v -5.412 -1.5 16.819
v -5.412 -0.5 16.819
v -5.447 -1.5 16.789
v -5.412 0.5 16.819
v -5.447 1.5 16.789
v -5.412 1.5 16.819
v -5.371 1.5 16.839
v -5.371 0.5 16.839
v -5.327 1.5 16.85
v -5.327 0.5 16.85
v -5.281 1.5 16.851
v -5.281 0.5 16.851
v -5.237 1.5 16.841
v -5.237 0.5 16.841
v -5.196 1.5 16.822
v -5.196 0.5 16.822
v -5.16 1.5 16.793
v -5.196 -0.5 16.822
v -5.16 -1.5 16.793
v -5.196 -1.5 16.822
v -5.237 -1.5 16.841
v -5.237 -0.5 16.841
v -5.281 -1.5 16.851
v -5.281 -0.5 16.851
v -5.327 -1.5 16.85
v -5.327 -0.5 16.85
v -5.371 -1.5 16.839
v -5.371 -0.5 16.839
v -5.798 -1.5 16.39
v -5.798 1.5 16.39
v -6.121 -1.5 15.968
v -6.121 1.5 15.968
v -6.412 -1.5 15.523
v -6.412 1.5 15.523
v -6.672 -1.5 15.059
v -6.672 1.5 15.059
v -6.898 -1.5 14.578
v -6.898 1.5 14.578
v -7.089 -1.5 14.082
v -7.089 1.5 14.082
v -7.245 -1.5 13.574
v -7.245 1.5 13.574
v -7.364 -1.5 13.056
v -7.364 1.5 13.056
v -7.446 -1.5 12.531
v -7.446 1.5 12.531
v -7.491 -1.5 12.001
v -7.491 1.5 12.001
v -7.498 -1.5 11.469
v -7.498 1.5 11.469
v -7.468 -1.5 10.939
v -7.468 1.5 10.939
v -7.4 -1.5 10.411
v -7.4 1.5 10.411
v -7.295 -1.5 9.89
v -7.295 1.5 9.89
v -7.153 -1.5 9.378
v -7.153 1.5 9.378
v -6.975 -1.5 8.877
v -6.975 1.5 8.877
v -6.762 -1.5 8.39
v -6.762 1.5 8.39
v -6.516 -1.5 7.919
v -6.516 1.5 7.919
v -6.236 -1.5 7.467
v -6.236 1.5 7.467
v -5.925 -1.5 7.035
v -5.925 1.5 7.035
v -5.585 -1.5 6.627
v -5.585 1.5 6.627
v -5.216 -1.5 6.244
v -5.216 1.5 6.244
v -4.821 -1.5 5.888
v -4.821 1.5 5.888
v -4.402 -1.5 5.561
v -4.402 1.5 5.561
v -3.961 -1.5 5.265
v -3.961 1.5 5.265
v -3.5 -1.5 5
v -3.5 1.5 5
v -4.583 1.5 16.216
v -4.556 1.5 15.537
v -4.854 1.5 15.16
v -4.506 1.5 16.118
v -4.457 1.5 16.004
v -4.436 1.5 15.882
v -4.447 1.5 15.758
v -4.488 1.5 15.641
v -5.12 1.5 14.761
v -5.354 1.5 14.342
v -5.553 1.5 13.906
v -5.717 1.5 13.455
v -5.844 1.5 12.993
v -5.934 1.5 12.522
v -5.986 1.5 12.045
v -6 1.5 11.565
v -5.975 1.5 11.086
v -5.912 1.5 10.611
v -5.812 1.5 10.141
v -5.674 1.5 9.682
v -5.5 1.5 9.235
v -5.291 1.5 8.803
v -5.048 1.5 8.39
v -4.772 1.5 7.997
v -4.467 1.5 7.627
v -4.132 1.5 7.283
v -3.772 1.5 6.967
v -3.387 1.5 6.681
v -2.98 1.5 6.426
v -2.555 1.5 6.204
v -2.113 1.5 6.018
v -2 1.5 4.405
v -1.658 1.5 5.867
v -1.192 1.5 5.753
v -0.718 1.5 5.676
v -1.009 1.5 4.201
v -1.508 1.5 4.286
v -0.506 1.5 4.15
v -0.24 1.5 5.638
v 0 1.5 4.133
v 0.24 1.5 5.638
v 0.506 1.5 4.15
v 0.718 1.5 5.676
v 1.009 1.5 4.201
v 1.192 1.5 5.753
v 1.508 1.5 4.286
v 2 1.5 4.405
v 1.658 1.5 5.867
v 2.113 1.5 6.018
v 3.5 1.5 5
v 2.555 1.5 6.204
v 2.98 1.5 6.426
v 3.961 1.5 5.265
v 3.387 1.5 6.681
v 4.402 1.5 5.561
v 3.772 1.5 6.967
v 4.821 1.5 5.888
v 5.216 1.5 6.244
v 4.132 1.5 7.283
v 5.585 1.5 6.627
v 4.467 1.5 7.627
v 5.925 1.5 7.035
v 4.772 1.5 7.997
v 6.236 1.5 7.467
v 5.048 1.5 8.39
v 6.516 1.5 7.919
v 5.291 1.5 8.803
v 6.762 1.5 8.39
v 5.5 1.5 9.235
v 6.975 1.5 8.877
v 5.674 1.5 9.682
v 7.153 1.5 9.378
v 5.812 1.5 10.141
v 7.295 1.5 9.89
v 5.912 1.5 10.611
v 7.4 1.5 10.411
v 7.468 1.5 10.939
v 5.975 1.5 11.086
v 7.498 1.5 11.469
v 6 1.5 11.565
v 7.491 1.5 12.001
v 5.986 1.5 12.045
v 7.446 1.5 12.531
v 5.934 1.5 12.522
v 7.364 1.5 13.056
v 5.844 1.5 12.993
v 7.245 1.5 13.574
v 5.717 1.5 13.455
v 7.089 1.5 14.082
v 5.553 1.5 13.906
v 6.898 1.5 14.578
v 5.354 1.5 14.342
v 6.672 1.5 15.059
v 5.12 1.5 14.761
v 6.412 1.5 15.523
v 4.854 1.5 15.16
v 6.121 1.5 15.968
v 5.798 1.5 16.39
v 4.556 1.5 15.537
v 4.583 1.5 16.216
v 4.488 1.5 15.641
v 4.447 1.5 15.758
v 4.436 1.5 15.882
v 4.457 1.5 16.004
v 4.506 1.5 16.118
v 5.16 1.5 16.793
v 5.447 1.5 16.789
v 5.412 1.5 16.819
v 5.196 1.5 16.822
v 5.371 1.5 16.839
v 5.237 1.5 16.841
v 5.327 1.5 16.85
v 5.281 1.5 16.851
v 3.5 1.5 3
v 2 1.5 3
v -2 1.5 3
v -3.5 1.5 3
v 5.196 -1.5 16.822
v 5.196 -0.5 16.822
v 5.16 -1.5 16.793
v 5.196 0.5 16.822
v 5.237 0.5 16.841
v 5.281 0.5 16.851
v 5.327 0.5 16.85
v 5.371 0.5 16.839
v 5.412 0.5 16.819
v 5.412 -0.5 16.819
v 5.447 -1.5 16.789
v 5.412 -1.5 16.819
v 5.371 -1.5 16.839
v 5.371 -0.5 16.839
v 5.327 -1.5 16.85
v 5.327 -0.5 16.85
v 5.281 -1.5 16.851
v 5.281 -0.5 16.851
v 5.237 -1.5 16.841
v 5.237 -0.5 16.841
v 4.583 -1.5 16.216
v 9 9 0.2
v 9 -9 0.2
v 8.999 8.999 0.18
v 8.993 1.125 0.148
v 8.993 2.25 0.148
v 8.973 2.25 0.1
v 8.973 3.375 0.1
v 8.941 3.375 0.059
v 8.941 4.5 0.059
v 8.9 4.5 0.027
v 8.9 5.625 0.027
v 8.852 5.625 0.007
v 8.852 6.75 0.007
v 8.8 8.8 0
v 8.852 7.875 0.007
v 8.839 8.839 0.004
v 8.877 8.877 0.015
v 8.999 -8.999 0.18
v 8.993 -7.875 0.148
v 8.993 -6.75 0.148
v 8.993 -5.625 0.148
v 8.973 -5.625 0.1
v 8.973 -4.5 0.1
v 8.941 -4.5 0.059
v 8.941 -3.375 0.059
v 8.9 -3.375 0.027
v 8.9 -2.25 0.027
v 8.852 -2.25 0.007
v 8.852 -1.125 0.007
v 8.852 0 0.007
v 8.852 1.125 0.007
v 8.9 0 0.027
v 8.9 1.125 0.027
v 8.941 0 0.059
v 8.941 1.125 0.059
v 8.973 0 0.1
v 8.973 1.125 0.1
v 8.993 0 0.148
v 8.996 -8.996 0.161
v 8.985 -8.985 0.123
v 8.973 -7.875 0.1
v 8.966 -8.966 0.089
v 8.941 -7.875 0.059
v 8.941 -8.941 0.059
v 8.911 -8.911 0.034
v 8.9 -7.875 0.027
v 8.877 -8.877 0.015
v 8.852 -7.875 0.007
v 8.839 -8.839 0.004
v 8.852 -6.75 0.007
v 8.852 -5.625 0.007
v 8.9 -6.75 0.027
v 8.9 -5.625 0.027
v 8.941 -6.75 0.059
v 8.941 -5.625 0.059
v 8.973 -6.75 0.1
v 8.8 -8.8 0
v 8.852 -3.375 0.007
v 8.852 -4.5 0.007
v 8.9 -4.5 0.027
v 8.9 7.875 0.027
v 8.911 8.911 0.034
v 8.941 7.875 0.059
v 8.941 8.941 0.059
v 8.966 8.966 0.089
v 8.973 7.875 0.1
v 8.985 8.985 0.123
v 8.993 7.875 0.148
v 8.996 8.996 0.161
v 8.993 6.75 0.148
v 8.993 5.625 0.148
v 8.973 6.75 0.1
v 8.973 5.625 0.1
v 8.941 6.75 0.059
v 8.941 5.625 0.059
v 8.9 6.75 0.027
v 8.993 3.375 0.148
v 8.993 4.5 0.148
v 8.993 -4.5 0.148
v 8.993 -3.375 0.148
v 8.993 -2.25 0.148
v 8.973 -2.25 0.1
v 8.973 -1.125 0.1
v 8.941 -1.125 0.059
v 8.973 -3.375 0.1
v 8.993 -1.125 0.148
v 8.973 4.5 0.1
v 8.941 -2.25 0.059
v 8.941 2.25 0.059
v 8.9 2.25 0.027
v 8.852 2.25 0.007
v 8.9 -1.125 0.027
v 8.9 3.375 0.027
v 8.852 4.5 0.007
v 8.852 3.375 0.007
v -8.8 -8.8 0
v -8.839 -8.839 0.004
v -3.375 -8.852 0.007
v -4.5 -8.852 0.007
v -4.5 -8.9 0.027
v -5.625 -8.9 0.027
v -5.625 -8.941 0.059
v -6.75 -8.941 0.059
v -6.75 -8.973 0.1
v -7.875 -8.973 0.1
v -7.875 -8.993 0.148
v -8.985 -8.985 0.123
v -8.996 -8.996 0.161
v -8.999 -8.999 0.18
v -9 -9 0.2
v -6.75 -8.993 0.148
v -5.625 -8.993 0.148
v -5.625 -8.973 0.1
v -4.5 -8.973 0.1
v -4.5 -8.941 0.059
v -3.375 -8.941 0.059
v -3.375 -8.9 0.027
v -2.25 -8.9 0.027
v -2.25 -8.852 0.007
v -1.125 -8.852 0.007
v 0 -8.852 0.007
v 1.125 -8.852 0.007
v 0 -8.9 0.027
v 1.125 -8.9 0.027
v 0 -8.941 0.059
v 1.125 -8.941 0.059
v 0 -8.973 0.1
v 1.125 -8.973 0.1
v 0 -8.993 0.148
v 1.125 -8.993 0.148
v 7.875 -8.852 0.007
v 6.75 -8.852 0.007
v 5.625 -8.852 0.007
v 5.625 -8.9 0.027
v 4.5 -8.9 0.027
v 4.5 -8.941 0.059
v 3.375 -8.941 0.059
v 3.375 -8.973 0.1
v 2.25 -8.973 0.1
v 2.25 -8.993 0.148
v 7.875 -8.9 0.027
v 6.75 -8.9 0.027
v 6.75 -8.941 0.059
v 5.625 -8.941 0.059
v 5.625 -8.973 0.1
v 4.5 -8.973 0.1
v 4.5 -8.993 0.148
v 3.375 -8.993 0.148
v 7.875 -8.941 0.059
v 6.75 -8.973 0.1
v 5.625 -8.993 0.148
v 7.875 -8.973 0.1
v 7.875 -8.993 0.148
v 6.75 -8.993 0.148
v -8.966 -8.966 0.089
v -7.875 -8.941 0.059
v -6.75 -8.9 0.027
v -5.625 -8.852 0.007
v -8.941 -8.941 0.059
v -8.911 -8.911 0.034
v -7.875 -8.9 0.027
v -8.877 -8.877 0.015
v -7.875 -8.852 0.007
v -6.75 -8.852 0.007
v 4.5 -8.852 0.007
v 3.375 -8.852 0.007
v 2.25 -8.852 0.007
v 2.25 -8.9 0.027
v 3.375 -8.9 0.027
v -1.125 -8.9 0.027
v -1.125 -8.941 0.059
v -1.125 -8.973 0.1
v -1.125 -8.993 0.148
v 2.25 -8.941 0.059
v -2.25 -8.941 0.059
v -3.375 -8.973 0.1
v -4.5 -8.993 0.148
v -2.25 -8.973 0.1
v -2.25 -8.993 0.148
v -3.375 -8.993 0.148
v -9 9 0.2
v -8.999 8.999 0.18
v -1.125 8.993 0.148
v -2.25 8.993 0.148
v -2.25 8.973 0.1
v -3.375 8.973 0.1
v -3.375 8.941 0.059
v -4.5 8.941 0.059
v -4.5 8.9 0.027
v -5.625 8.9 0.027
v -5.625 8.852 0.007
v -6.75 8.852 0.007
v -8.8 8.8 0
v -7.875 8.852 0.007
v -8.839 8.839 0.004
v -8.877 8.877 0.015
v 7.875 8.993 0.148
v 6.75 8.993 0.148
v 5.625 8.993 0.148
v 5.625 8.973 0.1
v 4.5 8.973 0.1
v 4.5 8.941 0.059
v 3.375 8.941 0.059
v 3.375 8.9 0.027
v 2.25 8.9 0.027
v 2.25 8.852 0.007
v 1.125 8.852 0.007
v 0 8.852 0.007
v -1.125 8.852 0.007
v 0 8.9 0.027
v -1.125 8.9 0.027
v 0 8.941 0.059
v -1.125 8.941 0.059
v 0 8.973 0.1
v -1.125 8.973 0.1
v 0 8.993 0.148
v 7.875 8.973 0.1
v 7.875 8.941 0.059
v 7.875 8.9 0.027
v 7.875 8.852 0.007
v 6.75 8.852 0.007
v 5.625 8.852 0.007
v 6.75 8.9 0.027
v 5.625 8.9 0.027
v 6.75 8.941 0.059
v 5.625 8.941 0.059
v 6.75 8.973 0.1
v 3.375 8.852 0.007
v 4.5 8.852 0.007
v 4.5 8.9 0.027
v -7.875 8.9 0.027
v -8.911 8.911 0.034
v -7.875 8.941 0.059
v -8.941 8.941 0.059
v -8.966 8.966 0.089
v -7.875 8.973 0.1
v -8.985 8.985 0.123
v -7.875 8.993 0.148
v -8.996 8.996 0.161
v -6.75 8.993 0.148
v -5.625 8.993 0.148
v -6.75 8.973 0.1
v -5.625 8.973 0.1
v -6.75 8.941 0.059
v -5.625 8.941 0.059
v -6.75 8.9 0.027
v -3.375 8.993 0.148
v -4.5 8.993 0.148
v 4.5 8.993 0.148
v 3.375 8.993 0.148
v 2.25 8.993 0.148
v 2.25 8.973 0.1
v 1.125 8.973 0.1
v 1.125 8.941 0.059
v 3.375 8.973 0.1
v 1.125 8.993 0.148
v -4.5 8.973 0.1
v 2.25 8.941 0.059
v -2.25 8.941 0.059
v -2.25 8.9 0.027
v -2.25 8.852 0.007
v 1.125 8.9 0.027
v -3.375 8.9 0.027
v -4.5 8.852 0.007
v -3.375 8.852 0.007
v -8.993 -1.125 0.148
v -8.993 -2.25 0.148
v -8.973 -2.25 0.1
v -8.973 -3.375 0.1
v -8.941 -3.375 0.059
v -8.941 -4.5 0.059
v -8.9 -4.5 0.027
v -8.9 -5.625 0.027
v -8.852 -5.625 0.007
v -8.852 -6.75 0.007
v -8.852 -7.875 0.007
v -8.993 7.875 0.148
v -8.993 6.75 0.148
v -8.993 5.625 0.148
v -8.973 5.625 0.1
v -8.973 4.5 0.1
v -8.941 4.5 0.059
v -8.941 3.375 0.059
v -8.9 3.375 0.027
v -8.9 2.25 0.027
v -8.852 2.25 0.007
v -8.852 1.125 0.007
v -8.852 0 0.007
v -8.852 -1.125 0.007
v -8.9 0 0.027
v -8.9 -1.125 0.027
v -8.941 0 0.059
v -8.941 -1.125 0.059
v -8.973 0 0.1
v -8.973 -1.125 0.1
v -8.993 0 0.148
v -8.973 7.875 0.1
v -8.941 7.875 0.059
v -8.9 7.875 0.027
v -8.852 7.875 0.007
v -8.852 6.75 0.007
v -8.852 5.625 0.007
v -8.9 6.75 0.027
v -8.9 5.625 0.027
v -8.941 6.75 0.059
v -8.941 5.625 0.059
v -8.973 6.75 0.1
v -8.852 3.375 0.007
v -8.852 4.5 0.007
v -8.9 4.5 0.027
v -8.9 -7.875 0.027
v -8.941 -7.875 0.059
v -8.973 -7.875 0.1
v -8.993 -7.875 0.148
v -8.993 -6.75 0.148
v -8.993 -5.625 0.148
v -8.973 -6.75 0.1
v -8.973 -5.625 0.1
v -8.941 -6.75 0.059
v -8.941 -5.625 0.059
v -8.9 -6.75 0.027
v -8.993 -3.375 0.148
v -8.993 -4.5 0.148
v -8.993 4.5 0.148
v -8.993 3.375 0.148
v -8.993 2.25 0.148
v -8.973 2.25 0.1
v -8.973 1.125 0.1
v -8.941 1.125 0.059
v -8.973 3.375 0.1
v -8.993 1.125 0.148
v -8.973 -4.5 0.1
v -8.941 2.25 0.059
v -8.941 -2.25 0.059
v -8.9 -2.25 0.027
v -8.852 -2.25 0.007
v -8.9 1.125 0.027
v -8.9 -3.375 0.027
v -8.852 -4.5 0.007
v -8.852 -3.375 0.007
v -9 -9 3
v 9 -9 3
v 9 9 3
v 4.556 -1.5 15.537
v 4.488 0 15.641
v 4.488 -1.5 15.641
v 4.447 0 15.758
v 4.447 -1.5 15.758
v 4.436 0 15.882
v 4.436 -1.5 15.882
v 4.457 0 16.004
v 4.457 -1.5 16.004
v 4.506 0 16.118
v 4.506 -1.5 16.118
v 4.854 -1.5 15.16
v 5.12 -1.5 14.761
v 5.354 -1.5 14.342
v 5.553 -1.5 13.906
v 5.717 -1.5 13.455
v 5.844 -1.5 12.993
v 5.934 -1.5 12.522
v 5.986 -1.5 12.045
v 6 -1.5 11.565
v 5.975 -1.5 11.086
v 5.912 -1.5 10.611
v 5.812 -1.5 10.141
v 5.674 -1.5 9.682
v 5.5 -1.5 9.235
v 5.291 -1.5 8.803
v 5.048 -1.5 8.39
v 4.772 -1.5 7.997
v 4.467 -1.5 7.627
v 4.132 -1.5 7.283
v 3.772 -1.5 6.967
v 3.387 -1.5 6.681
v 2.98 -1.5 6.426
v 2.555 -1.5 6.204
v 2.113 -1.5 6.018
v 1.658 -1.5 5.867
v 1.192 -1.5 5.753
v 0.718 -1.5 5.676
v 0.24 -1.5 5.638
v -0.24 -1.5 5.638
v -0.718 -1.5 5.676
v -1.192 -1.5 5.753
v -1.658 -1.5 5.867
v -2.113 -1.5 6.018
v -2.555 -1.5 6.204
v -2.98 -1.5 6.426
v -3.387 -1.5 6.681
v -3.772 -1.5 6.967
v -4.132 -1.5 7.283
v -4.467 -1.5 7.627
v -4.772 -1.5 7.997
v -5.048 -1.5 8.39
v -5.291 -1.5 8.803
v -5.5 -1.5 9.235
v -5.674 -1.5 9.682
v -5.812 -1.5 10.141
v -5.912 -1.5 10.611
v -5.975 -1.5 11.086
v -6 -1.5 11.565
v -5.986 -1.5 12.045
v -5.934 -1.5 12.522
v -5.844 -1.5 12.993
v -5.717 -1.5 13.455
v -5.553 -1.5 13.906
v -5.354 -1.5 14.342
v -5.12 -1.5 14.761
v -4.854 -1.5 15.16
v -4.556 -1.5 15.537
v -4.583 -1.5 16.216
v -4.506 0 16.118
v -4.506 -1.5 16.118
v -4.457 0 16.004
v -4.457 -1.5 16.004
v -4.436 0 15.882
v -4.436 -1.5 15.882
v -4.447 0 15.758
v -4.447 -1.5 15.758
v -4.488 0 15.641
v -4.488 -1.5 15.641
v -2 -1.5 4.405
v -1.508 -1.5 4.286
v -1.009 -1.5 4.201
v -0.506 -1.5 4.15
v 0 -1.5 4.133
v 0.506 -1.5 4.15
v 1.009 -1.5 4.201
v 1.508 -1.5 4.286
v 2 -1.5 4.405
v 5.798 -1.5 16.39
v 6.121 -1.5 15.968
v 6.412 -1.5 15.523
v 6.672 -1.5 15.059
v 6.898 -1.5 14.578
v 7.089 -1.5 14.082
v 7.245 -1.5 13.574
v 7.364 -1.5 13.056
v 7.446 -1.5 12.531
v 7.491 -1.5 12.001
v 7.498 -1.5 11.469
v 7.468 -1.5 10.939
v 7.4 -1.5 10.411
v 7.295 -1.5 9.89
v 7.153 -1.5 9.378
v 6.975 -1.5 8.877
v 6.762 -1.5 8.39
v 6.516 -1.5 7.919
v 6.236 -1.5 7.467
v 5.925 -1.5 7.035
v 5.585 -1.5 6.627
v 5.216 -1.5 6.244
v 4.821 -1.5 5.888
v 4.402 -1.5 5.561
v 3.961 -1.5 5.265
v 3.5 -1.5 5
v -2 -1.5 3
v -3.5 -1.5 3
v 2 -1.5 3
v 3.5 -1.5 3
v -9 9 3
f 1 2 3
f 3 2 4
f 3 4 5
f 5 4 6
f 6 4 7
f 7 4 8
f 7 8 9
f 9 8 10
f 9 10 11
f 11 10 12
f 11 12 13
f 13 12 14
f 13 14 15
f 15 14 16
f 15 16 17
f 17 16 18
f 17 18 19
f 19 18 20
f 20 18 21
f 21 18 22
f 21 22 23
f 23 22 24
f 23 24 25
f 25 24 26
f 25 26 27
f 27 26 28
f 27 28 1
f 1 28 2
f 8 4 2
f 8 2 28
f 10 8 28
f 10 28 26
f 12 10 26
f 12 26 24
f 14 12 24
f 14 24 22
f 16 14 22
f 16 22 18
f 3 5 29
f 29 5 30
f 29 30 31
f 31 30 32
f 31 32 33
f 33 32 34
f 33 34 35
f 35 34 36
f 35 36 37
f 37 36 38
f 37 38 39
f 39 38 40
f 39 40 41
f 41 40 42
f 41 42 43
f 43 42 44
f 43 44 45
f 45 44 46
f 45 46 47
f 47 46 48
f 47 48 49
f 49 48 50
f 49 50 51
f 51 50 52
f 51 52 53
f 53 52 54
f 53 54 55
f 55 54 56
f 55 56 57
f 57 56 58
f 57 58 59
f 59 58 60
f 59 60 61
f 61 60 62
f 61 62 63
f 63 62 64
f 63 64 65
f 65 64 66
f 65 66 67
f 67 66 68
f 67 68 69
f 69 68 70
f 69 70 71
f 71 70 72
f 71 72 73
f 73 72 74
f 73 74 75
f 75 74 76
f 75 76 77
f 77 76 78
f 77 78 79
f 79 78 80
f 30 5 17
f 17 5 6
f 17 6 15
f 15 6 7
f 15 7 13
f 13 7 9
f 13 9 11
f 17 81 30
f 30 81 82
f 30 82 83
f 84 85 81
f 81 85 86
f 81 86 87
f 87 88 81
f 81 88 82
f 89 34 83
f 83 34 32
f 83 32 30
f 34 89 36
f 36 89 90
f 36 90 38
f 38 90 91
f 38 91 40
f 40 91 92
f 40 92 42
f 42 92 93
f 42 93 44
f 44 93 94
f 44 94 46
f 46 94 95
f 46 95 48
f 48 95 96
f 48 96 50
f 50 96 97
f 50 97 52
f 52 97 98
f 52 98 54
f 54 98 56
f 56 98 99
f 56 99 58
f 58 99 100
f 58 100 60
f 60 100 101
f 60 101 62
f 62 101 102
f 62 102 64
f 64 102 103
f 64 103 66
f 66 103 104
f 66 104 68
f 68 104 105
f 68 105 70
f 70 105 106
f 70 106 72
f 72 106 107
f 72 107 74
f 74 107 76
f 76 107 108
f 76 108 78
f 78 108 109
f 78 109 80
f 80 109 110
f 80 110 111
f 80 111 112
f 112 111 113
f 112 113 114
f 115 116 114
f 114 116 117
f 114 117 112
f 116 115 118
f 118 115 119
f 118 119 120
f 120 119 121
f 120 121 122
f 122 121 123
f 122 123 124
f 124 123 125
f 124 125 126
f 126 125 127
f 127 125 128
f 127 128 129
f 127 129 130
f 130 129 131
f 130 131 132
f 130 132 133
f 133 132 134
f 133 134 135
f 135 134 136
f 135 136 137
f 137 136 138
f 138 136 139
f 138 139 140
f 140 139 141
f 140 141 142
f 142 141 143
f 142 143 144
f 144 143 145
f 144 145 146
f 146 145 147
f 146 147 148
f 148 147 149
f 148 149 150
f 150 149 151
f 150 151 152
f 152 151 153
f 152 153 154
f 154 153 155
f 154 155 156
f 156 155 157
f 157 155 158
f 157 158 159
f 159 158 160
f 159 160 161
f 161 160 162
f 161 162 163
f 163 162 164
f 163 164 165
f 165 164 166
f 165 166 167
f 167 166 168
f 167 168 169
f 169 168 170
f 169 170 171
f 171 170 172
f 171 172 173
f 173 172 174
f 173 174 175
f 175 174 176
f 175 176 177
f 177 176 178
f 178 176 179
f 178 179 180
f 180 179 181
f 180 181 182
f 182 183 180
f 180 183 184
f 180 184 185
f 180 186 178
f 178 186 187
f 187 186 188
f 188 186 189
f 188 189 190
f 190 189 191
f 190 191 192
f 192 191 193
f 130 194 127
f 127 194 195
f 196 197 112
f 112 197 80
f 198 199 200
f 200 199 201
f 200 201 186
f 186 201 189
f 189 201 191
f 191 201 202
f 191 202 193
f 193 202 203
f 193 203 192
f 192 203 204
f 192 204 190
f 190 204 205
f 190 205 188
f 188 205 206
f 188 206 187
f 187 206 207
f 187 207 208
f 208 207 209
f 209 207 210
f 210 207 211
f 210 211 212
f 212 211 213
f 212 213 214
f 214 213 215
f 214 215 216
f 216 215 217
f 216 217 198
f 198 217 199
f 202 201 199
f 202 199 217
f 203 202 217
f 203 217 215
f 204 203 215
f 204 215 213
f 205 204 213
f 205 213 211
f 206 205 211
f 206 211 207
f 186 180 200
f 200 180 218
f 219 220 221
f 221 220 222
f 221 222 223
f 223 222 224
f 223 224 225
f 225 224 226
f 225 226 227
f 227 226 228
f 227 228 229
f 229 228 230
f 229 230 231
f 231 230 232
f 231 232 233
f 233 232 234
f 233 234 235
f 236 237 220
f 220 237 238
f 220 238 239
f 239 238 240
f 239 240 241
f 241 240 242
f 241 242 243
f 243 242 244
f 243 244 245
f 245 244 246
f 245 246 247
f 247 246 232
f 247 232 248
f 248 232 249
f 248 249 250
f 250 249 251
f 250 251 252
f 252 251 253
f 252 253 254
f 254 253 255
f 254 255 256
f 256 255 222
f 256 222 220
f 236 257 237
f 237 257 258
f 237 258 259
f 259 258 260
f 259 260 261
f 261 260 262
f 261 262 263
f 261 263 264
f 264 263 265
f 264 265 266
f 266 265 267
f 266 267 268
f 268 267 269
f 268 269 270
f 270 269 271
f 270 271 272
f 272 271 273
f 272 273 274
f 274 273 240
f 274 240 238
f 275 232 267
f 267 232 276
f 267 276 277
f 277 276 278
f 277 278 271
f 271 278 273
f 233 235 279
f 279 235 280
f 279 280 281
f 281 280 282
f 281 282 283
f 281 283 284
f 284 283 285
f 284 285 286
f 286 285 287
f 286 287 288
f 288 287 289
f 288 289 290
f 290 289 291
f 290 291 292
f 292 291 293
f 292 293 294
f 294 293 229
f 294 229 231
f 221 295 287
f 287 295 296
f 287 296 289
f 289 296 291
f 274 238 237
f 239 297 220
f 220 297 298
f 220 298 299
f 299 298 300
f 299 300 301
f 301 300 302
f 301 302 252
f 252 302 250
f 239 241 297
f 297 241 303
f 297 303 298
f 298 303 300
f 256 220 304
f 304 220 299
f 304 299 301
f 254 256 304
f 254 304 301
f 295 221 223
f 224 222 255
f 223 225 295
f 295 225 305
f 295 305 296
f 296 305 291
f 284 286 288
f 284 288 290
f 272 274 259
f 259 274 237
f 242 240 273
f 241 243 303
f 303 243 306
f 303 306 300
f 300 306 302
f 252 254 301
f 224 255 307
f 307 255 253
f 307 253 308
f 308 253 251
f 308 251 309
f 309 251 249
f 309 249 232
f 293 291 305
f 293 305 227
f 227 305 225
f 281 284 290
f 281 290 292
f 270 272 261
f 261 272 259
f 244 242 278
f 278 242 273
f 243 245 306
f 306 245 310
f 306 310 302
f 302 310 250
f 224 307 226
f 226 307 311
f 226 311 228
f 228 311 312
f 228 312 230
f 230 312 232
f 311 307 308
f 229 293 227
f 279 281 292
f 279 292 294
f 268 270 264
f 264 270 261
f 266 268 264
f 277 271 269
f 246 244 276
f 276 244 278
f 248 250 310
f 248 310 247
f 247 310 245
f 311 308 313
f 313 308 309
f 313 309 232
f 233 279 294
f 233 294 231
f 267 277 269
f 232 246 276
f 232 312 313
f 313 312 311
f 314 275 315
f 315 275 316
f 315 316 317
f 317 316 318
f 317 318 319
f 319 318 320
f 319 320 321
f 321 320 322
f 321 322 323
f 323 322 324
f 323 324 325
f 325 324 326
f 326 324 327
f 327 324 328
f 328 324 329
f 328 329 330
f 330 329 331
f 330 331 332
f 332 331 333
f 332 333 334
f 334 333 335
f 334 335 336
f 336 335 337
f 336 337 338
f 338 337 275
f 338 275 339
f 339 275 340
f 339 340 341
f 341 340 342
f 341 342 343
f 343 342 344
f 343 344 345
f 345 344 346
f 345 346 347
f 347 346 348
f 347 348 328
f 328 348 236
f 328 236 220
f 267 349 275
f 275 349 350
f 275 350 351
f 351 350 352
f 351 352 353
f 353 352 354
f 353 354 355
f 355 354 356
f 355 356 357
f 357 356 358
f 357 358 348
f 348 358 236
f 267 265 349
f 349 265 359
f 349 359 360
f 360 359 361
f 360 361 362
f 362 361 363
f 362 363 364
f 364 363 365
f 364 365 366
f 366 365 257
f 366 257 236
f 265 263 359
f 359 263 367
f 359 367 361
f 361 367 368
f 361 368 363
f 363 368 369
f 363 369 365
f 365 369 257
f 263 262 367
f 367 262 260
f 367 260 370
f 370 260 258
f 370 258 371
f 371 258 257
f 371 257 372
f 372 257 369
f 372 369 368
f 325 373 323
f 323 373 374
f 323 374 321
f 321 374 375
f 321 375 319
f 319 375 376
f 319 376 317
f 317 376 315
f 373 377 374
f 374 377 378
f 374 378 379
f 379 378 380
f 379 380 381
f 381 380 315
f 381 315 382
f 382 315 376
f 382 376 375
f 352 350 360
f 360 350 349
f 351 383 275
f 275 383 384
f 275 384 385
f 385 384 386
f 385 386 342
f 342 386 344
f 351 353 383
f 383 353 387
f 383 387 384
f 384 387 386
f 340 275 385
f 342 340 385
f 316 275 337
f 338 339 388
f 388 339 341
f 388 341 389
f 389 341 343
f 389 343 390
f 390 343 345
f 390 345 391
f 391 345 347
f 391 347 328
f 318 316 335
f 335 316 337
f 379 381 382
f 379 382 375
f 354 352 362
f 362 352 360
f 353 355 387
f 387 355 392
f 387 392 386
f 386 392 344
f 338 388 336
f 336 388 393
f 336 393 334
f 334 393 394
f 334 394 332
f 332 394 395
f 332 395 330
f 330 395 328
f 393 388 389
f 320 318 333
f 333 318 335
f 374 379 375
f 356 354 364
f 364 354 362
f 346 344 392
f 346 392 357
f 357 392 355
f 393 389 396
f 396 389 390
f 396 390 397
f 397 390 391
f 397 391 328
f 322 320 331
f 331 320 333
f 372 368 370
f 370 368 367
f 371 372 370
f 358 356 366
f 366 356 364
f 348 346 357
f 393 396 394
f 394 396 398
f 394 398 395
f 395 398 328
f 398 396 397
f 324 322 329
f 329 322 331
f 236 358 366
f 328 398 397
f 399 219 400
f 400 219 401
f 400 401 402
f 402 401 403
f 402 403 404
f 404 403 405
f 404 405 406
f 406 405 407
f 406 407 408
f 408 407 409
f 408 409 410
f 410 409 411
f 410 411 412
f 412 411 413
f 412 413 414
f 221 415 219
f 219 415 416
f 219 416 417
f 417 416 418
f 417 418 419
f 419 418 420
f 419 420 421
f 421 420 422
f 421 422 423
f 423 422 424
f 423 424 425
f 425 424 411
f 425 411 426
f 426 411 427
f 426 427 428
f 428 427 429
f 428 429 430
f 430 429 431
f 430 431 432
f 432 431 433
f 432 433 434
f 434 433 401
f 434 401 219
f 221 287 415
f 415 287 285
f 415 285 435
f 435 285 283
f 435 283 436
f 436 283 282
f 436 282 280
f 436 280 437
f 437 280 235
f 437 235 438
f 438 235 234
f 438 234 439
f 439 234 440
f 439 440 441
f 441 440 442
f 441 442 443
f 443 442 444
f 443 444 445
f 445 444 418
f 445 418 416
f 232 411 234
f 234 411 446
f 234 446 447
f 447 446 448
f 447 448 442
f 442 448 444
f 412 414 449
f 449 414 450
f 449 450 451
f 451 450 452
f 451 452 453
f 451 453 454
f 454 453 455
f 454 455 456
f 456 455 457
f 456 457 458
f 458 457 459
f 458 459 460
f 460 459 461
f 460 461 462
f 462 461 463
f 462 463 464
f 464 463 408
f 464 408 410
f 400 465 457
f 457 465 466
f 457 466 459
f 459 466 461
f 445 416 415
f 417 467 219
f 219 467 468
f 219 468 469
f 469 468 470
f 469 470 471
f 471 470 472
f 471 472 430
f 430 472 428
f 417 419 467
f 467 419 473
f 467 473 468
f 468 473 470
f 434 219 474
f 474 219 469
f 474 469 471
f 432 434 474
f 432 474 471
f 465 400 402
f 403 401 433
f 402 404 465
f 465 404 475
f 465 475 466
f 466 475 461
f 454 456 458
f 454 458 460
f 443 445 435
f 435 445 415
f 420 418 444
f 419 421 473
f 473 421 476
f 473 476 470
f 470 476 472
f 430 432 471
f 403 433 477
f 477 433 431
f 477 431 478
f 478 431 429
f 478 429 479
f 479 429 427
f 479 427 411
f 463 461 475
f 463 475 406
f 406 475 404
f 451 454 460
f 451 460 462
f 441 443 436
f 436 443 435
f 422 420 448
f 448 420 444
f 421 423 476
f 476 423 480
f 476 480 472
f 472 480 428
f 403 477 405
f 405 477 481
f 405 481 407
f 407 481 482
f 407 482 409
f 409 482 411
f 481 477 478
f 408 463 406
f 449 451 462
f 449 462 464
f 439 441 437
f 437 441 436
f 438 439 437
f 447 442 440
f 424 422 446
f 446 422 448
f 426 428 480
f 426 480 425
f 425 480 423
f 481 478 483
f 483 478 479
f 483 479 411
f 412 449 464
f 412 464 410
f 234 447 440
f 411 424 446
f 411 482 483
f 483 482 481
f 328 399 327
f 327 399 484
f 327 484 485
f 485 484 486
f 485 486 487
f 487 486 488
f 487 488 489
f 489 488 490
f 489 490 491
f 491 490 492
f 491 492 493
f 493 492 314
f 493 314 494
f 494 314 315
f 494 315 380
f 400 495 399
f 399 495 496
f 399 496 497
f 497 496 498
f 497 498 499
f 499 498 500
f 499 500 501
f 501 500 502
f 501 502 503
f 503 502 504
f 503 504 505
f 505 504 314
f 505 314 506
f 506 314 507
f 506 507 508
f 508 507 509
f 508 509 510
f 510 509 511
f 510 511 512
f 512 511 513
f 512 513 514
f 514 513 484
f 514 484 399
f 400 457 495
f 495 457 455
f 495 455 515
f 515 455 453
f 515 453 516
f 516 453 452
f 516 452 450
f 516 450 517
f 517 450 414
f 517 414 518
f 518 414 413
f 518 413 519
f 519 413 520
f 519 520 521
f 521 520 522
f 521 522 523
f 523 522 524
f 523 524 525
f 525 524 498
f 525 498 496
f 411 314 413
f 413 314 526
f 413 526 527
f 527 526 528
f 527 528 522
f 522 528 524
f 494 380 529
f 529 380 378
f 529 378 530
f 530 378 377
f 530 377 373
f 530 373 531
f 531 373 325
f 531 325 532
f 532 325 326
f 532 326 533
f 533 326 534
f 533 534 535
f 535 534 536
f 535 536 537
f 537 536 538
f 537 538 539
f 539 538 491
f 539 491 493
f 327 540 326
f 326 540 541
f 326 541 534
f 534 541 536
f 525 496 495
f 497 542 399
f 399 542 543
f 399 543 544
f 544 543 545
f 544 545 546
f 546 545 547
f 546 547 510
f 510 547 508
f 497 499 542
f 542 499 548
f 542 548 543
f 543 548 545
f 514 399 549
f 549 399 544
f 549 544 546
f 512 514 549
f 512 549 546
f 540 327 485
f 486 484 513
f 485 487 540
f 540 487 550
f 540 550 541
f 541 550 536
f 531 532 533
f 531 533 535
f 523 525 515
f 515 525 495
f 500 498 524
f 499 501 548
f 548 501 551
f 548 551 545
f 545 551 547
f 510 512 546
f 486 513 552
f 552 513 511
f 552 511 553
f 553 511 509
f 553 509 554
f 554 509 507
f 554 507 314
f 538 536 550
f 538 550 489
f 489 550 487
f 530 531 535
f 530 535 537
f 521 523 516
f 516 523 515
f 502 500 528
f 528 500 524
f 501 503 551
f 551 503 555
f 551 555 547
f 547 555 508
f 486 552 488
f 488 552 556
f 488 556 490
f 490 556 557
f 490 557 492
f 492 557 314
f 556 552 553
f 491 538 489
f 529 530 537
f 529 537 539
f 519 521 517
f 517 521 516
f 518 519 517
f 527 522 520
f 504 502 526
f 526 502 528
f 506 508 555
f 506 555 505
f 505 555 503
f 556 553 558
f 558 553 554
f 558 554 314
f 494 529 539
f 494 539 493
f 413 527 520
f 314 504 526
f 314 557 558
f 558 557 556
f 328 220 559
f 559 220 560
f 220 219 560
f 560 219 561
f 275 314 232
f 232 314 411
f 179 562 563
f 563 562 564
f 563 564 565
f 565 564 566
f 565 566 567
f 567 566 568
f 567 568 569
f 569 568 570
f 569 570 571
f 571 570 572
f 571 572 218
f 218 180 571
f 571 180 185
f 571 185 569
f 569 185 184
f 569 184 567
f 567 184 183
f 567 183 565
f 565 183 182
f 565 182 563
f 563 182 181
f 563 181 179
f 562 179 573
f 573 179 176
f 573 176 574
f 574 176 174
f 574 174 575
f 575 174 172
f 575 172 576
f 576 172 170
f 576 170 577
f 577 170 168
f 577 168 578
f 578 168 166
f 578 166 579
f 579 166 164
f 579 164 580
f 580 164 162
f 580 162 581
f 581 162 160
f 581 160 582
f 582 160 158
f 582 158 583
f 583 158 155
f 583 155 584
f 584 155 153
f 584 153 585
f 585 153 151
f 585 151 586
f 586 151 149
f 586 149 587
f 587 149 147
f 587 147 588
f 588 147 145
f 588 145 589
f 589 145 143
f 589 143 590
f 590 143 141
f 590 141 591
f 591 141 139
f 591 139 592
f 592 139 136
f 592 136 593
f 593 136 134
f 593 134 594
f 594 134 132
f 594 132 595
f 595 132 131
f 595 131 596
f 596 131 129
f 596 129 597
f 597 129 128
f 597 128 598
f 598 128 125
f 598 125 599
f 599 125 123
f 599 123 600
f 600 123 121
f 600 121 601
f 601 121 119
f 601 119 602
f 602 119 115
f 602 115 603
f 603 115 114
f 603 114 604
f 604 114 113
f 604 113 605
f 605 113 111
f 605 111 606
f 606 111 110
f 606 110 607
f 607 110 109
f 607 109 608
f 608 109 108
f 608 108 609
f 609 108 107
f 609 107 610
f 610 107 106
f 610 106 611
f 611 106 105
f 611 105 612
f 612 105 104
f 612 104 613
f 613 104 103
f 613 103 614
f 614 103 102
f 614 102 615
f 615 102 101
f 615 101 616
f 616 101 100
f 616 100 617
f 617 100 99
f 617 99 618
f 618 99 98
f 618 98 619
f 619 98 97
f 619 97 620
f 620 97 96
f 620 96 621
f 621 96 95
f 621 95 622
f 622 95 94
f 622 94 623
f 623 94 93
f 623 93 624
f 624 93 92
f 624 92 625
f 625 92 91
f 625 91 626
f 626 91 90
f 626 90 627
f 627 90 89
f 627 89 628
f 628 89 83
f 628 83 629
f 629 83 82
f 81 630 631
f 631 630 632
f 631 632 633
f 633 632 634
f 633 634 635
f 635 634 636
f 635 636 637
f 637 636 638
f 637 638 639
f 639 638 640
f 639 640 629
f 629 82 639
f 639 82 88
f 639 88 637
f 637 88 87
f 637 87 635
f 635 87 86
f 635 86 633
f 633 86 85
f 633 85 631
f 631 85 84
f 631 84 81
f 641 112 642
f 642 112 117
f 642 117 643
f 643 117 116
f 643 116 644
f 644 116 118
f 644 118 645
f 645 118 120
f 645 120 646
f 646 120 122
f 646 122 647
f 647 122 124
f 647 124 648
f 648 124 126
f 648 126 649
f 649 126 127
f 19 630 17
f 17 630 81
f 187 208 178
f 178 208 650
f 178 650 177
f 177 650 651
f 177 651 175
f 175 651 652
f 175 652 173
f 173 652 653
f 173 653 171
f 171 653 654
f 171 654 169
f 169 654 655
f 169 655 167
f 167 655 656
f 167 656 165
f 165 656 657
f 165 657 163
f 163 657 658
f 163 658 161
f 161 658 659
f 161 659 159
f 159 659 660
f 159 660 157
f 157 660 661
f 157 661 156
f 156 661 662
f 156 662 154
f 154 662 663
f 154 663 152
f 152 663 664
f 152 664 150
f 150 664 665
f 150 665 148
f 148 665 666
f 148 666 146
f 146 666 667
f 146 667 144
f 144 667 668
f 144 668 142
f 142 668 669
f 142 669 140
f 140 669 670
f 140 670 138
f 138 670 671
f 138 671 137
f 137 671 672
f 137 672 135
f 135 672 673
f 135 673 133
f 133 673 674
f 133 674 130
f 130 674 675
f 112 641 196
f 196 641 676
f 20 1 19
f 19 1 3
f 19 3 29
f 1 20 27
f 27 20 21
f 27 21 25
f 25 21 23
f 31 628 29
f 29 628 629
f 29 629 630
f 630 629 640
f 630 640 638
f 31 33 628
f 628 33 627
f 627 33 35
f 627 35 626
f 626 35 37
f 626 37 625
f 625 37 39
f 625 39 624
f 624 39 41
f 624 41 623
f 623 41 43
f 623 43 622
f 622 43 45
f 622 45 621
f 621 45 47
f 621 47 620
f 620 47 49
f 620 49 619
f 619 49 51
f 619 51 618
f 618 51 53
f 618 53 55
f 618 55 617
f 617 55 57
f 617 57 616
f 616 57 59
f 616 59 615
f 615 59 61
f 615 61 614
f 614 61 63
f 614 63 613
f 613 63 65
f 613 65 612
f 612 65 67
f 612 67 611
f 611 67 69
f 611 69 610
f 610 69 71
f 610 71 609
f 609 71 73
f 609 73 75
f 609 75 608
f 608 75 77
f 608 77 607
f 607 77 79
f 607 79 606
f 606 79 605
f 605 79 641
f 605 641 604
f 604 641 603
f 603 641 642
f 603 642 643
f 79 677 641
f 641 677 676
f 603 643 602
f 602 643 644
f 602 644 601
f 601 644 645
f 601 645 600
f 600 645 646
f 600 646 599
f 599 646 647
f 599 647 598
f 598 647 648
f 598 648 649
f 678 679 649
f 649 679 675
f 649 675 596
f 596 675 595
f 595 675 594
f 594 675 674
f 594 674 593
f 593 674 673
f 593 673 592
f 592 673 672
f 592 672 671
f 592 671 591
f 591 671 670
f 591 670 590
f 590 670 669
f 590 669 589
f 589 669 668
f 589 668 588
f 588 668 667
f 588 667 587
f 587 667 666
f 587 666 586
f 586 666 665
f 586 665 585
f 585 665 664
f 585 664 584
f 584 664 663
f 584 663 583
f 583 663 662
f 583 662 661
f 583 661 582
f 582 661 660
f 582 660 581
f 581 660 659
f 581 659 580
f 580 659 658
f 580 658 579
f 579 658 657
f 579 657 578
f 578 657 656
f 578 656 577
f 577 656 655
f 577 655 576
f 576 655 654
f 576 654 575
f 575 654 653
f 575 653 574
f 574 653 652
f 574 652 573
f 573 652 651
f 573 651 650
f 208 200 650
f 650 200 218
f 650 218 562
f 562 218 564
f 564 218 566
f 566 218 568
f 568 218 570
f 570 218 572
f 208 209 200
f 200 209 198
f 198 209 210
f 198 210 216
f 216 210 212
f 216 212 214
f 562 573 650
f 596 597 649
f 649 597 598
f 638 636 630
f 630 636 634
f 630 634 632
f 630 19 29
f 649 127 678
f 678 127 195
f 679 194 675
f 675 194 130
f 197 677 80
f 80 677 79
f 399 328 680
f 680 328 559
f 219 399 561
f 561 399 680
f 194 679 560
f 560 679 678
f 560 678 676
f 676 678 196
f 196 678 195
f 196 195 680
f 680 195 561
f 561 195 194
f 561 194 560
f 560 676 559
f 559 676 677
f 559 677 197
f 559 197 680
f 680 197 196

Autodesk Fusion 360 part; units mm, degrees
sketch "Sketch1" plane through (0, 0, 0) normal (0, 0, 1) x (1, 0, 0)
  line L0 (9, 9) -> (-9, 9)
  line L1 (-9, 9) -> (-9, -9)
  line L2 (-9, -9) -> (9, -9)
  line L3 (9, -9) -> (9, 9)
  line L4 (9, 9) -> (-9, -9) construction
  line L5 (-9, 9) -> (9, -9) construction
  dimension "d1" = 18
  dimension "d2" = 18
extrude "Extrude1" add sketch "Sketch1" along normal blind 3
sketch "Sketch2" plane through (0, 0, 3) normal (0, 0, 1) x (-1, 0, 0)
  line L0 (-9, 9) -> (-9, -9)
  line L1 (-9, -9) -> (9, -9)
  line L2 (9, -9) -> (9, 9)
  line L3 (9, 9) -> (-9, 9)
  line L4 (2, -1.5) -> (3.5, -1.5)
  line L5 (3.5, -1.5) -> (3.5, 1.5)
  line L6 (3.5, 1.5) -> (2, 1.5)
  line L7 (2, 1.5) -> (2, -1.5)
  line L8 (2, -1.5) -> (3.5, 1.5) construction
  line L9 (3.5, -1.5) -> (2, 1.5) construction
  line L10 (-3.5, -1.5) -> (-2, -1.5)
  line L11 (-2, -1.5) -> (-2, 1.5)
  line L12 (-2, 1.5) -> (-3.5, 1.5)
  line L13 (-3.5, 1.5) -> (-3.5, -1.5)
  line L14 (-3.5, -1.5) -> (-2, 1.5) construction
  line L15 (-2, -1.5) -> (-3.5, 1.5) construction
  line L16 (0, -12) -> (0, 14) construction
  point P0 (2.75, 0)
  point P1 (-2.75, 0)
  dimension "d5" = 3
  dimension "d6" = 1.5
  dimension "d7" = 1.5
  dimension "d8" = 3
  dimension "d9" = 2
extrude "Extrude2" add sketch "Sketch2" along normal blind 2 contours L4 L5 L6 L7 | L10 L11 L12 L13
sketch "Sketch8" plane through (0, 1.5, 0) normal (0, 1, 0) x (-1, 0, 0)
  line L0 (-3.5, 3) -> (-2, 3)
  line L1 (-2, 3) -> (-2, 5)
  line L2 (-2, 5) -> (-3.5, 5)
  line L3 (-3.5, 5) -> (-3.5, 3)
  line L4 (-4.2426, 15.8759) -> (-5.3033, 16.9366)
  line L5 (0, 11.6332) -> (7.5, 11.6332) construction
  line L6 (4.2426, 15.8759) -> (5.3033, 16.9366)
  arc A0 (-5.3033, 16.9366) -> (5.3033, 16.9366) centre (0, 11.6332) ccw
  arc A1 (-4.2426, 15.8759) -> (4.2426, 15.8759) centre (0, 11.6332) ccw
  point P0 (3.5, 5)
  dimension "d18" = 15
  dimension "d19" = 12
  dimension "d20" = 135
extrude "Extrude3" add 1 faces at (-2.5, 1.5, 3.6667) along direction (0, -1, 0) blind 3
extrude "Extrude4" add sketch "Sketch8" against normal blind 3 contours L1 L2 L4 L6 A0 A1
fillet "Fillet1" radius 0.5 2 edges at (-4.2426, 0, 15.8759) (4.2426, 0, 15.8759)
fillet "Fillet2" radius 0.2 4 edges at (9, 0, 0) (0, 9, 0) (-9, 0, 0) (0, -9, 0)
fillet "Fillet3" radius 0.2 2 edges at (5.3033, 0, 16.9366) (-5.3033, 0, 16.9366)
